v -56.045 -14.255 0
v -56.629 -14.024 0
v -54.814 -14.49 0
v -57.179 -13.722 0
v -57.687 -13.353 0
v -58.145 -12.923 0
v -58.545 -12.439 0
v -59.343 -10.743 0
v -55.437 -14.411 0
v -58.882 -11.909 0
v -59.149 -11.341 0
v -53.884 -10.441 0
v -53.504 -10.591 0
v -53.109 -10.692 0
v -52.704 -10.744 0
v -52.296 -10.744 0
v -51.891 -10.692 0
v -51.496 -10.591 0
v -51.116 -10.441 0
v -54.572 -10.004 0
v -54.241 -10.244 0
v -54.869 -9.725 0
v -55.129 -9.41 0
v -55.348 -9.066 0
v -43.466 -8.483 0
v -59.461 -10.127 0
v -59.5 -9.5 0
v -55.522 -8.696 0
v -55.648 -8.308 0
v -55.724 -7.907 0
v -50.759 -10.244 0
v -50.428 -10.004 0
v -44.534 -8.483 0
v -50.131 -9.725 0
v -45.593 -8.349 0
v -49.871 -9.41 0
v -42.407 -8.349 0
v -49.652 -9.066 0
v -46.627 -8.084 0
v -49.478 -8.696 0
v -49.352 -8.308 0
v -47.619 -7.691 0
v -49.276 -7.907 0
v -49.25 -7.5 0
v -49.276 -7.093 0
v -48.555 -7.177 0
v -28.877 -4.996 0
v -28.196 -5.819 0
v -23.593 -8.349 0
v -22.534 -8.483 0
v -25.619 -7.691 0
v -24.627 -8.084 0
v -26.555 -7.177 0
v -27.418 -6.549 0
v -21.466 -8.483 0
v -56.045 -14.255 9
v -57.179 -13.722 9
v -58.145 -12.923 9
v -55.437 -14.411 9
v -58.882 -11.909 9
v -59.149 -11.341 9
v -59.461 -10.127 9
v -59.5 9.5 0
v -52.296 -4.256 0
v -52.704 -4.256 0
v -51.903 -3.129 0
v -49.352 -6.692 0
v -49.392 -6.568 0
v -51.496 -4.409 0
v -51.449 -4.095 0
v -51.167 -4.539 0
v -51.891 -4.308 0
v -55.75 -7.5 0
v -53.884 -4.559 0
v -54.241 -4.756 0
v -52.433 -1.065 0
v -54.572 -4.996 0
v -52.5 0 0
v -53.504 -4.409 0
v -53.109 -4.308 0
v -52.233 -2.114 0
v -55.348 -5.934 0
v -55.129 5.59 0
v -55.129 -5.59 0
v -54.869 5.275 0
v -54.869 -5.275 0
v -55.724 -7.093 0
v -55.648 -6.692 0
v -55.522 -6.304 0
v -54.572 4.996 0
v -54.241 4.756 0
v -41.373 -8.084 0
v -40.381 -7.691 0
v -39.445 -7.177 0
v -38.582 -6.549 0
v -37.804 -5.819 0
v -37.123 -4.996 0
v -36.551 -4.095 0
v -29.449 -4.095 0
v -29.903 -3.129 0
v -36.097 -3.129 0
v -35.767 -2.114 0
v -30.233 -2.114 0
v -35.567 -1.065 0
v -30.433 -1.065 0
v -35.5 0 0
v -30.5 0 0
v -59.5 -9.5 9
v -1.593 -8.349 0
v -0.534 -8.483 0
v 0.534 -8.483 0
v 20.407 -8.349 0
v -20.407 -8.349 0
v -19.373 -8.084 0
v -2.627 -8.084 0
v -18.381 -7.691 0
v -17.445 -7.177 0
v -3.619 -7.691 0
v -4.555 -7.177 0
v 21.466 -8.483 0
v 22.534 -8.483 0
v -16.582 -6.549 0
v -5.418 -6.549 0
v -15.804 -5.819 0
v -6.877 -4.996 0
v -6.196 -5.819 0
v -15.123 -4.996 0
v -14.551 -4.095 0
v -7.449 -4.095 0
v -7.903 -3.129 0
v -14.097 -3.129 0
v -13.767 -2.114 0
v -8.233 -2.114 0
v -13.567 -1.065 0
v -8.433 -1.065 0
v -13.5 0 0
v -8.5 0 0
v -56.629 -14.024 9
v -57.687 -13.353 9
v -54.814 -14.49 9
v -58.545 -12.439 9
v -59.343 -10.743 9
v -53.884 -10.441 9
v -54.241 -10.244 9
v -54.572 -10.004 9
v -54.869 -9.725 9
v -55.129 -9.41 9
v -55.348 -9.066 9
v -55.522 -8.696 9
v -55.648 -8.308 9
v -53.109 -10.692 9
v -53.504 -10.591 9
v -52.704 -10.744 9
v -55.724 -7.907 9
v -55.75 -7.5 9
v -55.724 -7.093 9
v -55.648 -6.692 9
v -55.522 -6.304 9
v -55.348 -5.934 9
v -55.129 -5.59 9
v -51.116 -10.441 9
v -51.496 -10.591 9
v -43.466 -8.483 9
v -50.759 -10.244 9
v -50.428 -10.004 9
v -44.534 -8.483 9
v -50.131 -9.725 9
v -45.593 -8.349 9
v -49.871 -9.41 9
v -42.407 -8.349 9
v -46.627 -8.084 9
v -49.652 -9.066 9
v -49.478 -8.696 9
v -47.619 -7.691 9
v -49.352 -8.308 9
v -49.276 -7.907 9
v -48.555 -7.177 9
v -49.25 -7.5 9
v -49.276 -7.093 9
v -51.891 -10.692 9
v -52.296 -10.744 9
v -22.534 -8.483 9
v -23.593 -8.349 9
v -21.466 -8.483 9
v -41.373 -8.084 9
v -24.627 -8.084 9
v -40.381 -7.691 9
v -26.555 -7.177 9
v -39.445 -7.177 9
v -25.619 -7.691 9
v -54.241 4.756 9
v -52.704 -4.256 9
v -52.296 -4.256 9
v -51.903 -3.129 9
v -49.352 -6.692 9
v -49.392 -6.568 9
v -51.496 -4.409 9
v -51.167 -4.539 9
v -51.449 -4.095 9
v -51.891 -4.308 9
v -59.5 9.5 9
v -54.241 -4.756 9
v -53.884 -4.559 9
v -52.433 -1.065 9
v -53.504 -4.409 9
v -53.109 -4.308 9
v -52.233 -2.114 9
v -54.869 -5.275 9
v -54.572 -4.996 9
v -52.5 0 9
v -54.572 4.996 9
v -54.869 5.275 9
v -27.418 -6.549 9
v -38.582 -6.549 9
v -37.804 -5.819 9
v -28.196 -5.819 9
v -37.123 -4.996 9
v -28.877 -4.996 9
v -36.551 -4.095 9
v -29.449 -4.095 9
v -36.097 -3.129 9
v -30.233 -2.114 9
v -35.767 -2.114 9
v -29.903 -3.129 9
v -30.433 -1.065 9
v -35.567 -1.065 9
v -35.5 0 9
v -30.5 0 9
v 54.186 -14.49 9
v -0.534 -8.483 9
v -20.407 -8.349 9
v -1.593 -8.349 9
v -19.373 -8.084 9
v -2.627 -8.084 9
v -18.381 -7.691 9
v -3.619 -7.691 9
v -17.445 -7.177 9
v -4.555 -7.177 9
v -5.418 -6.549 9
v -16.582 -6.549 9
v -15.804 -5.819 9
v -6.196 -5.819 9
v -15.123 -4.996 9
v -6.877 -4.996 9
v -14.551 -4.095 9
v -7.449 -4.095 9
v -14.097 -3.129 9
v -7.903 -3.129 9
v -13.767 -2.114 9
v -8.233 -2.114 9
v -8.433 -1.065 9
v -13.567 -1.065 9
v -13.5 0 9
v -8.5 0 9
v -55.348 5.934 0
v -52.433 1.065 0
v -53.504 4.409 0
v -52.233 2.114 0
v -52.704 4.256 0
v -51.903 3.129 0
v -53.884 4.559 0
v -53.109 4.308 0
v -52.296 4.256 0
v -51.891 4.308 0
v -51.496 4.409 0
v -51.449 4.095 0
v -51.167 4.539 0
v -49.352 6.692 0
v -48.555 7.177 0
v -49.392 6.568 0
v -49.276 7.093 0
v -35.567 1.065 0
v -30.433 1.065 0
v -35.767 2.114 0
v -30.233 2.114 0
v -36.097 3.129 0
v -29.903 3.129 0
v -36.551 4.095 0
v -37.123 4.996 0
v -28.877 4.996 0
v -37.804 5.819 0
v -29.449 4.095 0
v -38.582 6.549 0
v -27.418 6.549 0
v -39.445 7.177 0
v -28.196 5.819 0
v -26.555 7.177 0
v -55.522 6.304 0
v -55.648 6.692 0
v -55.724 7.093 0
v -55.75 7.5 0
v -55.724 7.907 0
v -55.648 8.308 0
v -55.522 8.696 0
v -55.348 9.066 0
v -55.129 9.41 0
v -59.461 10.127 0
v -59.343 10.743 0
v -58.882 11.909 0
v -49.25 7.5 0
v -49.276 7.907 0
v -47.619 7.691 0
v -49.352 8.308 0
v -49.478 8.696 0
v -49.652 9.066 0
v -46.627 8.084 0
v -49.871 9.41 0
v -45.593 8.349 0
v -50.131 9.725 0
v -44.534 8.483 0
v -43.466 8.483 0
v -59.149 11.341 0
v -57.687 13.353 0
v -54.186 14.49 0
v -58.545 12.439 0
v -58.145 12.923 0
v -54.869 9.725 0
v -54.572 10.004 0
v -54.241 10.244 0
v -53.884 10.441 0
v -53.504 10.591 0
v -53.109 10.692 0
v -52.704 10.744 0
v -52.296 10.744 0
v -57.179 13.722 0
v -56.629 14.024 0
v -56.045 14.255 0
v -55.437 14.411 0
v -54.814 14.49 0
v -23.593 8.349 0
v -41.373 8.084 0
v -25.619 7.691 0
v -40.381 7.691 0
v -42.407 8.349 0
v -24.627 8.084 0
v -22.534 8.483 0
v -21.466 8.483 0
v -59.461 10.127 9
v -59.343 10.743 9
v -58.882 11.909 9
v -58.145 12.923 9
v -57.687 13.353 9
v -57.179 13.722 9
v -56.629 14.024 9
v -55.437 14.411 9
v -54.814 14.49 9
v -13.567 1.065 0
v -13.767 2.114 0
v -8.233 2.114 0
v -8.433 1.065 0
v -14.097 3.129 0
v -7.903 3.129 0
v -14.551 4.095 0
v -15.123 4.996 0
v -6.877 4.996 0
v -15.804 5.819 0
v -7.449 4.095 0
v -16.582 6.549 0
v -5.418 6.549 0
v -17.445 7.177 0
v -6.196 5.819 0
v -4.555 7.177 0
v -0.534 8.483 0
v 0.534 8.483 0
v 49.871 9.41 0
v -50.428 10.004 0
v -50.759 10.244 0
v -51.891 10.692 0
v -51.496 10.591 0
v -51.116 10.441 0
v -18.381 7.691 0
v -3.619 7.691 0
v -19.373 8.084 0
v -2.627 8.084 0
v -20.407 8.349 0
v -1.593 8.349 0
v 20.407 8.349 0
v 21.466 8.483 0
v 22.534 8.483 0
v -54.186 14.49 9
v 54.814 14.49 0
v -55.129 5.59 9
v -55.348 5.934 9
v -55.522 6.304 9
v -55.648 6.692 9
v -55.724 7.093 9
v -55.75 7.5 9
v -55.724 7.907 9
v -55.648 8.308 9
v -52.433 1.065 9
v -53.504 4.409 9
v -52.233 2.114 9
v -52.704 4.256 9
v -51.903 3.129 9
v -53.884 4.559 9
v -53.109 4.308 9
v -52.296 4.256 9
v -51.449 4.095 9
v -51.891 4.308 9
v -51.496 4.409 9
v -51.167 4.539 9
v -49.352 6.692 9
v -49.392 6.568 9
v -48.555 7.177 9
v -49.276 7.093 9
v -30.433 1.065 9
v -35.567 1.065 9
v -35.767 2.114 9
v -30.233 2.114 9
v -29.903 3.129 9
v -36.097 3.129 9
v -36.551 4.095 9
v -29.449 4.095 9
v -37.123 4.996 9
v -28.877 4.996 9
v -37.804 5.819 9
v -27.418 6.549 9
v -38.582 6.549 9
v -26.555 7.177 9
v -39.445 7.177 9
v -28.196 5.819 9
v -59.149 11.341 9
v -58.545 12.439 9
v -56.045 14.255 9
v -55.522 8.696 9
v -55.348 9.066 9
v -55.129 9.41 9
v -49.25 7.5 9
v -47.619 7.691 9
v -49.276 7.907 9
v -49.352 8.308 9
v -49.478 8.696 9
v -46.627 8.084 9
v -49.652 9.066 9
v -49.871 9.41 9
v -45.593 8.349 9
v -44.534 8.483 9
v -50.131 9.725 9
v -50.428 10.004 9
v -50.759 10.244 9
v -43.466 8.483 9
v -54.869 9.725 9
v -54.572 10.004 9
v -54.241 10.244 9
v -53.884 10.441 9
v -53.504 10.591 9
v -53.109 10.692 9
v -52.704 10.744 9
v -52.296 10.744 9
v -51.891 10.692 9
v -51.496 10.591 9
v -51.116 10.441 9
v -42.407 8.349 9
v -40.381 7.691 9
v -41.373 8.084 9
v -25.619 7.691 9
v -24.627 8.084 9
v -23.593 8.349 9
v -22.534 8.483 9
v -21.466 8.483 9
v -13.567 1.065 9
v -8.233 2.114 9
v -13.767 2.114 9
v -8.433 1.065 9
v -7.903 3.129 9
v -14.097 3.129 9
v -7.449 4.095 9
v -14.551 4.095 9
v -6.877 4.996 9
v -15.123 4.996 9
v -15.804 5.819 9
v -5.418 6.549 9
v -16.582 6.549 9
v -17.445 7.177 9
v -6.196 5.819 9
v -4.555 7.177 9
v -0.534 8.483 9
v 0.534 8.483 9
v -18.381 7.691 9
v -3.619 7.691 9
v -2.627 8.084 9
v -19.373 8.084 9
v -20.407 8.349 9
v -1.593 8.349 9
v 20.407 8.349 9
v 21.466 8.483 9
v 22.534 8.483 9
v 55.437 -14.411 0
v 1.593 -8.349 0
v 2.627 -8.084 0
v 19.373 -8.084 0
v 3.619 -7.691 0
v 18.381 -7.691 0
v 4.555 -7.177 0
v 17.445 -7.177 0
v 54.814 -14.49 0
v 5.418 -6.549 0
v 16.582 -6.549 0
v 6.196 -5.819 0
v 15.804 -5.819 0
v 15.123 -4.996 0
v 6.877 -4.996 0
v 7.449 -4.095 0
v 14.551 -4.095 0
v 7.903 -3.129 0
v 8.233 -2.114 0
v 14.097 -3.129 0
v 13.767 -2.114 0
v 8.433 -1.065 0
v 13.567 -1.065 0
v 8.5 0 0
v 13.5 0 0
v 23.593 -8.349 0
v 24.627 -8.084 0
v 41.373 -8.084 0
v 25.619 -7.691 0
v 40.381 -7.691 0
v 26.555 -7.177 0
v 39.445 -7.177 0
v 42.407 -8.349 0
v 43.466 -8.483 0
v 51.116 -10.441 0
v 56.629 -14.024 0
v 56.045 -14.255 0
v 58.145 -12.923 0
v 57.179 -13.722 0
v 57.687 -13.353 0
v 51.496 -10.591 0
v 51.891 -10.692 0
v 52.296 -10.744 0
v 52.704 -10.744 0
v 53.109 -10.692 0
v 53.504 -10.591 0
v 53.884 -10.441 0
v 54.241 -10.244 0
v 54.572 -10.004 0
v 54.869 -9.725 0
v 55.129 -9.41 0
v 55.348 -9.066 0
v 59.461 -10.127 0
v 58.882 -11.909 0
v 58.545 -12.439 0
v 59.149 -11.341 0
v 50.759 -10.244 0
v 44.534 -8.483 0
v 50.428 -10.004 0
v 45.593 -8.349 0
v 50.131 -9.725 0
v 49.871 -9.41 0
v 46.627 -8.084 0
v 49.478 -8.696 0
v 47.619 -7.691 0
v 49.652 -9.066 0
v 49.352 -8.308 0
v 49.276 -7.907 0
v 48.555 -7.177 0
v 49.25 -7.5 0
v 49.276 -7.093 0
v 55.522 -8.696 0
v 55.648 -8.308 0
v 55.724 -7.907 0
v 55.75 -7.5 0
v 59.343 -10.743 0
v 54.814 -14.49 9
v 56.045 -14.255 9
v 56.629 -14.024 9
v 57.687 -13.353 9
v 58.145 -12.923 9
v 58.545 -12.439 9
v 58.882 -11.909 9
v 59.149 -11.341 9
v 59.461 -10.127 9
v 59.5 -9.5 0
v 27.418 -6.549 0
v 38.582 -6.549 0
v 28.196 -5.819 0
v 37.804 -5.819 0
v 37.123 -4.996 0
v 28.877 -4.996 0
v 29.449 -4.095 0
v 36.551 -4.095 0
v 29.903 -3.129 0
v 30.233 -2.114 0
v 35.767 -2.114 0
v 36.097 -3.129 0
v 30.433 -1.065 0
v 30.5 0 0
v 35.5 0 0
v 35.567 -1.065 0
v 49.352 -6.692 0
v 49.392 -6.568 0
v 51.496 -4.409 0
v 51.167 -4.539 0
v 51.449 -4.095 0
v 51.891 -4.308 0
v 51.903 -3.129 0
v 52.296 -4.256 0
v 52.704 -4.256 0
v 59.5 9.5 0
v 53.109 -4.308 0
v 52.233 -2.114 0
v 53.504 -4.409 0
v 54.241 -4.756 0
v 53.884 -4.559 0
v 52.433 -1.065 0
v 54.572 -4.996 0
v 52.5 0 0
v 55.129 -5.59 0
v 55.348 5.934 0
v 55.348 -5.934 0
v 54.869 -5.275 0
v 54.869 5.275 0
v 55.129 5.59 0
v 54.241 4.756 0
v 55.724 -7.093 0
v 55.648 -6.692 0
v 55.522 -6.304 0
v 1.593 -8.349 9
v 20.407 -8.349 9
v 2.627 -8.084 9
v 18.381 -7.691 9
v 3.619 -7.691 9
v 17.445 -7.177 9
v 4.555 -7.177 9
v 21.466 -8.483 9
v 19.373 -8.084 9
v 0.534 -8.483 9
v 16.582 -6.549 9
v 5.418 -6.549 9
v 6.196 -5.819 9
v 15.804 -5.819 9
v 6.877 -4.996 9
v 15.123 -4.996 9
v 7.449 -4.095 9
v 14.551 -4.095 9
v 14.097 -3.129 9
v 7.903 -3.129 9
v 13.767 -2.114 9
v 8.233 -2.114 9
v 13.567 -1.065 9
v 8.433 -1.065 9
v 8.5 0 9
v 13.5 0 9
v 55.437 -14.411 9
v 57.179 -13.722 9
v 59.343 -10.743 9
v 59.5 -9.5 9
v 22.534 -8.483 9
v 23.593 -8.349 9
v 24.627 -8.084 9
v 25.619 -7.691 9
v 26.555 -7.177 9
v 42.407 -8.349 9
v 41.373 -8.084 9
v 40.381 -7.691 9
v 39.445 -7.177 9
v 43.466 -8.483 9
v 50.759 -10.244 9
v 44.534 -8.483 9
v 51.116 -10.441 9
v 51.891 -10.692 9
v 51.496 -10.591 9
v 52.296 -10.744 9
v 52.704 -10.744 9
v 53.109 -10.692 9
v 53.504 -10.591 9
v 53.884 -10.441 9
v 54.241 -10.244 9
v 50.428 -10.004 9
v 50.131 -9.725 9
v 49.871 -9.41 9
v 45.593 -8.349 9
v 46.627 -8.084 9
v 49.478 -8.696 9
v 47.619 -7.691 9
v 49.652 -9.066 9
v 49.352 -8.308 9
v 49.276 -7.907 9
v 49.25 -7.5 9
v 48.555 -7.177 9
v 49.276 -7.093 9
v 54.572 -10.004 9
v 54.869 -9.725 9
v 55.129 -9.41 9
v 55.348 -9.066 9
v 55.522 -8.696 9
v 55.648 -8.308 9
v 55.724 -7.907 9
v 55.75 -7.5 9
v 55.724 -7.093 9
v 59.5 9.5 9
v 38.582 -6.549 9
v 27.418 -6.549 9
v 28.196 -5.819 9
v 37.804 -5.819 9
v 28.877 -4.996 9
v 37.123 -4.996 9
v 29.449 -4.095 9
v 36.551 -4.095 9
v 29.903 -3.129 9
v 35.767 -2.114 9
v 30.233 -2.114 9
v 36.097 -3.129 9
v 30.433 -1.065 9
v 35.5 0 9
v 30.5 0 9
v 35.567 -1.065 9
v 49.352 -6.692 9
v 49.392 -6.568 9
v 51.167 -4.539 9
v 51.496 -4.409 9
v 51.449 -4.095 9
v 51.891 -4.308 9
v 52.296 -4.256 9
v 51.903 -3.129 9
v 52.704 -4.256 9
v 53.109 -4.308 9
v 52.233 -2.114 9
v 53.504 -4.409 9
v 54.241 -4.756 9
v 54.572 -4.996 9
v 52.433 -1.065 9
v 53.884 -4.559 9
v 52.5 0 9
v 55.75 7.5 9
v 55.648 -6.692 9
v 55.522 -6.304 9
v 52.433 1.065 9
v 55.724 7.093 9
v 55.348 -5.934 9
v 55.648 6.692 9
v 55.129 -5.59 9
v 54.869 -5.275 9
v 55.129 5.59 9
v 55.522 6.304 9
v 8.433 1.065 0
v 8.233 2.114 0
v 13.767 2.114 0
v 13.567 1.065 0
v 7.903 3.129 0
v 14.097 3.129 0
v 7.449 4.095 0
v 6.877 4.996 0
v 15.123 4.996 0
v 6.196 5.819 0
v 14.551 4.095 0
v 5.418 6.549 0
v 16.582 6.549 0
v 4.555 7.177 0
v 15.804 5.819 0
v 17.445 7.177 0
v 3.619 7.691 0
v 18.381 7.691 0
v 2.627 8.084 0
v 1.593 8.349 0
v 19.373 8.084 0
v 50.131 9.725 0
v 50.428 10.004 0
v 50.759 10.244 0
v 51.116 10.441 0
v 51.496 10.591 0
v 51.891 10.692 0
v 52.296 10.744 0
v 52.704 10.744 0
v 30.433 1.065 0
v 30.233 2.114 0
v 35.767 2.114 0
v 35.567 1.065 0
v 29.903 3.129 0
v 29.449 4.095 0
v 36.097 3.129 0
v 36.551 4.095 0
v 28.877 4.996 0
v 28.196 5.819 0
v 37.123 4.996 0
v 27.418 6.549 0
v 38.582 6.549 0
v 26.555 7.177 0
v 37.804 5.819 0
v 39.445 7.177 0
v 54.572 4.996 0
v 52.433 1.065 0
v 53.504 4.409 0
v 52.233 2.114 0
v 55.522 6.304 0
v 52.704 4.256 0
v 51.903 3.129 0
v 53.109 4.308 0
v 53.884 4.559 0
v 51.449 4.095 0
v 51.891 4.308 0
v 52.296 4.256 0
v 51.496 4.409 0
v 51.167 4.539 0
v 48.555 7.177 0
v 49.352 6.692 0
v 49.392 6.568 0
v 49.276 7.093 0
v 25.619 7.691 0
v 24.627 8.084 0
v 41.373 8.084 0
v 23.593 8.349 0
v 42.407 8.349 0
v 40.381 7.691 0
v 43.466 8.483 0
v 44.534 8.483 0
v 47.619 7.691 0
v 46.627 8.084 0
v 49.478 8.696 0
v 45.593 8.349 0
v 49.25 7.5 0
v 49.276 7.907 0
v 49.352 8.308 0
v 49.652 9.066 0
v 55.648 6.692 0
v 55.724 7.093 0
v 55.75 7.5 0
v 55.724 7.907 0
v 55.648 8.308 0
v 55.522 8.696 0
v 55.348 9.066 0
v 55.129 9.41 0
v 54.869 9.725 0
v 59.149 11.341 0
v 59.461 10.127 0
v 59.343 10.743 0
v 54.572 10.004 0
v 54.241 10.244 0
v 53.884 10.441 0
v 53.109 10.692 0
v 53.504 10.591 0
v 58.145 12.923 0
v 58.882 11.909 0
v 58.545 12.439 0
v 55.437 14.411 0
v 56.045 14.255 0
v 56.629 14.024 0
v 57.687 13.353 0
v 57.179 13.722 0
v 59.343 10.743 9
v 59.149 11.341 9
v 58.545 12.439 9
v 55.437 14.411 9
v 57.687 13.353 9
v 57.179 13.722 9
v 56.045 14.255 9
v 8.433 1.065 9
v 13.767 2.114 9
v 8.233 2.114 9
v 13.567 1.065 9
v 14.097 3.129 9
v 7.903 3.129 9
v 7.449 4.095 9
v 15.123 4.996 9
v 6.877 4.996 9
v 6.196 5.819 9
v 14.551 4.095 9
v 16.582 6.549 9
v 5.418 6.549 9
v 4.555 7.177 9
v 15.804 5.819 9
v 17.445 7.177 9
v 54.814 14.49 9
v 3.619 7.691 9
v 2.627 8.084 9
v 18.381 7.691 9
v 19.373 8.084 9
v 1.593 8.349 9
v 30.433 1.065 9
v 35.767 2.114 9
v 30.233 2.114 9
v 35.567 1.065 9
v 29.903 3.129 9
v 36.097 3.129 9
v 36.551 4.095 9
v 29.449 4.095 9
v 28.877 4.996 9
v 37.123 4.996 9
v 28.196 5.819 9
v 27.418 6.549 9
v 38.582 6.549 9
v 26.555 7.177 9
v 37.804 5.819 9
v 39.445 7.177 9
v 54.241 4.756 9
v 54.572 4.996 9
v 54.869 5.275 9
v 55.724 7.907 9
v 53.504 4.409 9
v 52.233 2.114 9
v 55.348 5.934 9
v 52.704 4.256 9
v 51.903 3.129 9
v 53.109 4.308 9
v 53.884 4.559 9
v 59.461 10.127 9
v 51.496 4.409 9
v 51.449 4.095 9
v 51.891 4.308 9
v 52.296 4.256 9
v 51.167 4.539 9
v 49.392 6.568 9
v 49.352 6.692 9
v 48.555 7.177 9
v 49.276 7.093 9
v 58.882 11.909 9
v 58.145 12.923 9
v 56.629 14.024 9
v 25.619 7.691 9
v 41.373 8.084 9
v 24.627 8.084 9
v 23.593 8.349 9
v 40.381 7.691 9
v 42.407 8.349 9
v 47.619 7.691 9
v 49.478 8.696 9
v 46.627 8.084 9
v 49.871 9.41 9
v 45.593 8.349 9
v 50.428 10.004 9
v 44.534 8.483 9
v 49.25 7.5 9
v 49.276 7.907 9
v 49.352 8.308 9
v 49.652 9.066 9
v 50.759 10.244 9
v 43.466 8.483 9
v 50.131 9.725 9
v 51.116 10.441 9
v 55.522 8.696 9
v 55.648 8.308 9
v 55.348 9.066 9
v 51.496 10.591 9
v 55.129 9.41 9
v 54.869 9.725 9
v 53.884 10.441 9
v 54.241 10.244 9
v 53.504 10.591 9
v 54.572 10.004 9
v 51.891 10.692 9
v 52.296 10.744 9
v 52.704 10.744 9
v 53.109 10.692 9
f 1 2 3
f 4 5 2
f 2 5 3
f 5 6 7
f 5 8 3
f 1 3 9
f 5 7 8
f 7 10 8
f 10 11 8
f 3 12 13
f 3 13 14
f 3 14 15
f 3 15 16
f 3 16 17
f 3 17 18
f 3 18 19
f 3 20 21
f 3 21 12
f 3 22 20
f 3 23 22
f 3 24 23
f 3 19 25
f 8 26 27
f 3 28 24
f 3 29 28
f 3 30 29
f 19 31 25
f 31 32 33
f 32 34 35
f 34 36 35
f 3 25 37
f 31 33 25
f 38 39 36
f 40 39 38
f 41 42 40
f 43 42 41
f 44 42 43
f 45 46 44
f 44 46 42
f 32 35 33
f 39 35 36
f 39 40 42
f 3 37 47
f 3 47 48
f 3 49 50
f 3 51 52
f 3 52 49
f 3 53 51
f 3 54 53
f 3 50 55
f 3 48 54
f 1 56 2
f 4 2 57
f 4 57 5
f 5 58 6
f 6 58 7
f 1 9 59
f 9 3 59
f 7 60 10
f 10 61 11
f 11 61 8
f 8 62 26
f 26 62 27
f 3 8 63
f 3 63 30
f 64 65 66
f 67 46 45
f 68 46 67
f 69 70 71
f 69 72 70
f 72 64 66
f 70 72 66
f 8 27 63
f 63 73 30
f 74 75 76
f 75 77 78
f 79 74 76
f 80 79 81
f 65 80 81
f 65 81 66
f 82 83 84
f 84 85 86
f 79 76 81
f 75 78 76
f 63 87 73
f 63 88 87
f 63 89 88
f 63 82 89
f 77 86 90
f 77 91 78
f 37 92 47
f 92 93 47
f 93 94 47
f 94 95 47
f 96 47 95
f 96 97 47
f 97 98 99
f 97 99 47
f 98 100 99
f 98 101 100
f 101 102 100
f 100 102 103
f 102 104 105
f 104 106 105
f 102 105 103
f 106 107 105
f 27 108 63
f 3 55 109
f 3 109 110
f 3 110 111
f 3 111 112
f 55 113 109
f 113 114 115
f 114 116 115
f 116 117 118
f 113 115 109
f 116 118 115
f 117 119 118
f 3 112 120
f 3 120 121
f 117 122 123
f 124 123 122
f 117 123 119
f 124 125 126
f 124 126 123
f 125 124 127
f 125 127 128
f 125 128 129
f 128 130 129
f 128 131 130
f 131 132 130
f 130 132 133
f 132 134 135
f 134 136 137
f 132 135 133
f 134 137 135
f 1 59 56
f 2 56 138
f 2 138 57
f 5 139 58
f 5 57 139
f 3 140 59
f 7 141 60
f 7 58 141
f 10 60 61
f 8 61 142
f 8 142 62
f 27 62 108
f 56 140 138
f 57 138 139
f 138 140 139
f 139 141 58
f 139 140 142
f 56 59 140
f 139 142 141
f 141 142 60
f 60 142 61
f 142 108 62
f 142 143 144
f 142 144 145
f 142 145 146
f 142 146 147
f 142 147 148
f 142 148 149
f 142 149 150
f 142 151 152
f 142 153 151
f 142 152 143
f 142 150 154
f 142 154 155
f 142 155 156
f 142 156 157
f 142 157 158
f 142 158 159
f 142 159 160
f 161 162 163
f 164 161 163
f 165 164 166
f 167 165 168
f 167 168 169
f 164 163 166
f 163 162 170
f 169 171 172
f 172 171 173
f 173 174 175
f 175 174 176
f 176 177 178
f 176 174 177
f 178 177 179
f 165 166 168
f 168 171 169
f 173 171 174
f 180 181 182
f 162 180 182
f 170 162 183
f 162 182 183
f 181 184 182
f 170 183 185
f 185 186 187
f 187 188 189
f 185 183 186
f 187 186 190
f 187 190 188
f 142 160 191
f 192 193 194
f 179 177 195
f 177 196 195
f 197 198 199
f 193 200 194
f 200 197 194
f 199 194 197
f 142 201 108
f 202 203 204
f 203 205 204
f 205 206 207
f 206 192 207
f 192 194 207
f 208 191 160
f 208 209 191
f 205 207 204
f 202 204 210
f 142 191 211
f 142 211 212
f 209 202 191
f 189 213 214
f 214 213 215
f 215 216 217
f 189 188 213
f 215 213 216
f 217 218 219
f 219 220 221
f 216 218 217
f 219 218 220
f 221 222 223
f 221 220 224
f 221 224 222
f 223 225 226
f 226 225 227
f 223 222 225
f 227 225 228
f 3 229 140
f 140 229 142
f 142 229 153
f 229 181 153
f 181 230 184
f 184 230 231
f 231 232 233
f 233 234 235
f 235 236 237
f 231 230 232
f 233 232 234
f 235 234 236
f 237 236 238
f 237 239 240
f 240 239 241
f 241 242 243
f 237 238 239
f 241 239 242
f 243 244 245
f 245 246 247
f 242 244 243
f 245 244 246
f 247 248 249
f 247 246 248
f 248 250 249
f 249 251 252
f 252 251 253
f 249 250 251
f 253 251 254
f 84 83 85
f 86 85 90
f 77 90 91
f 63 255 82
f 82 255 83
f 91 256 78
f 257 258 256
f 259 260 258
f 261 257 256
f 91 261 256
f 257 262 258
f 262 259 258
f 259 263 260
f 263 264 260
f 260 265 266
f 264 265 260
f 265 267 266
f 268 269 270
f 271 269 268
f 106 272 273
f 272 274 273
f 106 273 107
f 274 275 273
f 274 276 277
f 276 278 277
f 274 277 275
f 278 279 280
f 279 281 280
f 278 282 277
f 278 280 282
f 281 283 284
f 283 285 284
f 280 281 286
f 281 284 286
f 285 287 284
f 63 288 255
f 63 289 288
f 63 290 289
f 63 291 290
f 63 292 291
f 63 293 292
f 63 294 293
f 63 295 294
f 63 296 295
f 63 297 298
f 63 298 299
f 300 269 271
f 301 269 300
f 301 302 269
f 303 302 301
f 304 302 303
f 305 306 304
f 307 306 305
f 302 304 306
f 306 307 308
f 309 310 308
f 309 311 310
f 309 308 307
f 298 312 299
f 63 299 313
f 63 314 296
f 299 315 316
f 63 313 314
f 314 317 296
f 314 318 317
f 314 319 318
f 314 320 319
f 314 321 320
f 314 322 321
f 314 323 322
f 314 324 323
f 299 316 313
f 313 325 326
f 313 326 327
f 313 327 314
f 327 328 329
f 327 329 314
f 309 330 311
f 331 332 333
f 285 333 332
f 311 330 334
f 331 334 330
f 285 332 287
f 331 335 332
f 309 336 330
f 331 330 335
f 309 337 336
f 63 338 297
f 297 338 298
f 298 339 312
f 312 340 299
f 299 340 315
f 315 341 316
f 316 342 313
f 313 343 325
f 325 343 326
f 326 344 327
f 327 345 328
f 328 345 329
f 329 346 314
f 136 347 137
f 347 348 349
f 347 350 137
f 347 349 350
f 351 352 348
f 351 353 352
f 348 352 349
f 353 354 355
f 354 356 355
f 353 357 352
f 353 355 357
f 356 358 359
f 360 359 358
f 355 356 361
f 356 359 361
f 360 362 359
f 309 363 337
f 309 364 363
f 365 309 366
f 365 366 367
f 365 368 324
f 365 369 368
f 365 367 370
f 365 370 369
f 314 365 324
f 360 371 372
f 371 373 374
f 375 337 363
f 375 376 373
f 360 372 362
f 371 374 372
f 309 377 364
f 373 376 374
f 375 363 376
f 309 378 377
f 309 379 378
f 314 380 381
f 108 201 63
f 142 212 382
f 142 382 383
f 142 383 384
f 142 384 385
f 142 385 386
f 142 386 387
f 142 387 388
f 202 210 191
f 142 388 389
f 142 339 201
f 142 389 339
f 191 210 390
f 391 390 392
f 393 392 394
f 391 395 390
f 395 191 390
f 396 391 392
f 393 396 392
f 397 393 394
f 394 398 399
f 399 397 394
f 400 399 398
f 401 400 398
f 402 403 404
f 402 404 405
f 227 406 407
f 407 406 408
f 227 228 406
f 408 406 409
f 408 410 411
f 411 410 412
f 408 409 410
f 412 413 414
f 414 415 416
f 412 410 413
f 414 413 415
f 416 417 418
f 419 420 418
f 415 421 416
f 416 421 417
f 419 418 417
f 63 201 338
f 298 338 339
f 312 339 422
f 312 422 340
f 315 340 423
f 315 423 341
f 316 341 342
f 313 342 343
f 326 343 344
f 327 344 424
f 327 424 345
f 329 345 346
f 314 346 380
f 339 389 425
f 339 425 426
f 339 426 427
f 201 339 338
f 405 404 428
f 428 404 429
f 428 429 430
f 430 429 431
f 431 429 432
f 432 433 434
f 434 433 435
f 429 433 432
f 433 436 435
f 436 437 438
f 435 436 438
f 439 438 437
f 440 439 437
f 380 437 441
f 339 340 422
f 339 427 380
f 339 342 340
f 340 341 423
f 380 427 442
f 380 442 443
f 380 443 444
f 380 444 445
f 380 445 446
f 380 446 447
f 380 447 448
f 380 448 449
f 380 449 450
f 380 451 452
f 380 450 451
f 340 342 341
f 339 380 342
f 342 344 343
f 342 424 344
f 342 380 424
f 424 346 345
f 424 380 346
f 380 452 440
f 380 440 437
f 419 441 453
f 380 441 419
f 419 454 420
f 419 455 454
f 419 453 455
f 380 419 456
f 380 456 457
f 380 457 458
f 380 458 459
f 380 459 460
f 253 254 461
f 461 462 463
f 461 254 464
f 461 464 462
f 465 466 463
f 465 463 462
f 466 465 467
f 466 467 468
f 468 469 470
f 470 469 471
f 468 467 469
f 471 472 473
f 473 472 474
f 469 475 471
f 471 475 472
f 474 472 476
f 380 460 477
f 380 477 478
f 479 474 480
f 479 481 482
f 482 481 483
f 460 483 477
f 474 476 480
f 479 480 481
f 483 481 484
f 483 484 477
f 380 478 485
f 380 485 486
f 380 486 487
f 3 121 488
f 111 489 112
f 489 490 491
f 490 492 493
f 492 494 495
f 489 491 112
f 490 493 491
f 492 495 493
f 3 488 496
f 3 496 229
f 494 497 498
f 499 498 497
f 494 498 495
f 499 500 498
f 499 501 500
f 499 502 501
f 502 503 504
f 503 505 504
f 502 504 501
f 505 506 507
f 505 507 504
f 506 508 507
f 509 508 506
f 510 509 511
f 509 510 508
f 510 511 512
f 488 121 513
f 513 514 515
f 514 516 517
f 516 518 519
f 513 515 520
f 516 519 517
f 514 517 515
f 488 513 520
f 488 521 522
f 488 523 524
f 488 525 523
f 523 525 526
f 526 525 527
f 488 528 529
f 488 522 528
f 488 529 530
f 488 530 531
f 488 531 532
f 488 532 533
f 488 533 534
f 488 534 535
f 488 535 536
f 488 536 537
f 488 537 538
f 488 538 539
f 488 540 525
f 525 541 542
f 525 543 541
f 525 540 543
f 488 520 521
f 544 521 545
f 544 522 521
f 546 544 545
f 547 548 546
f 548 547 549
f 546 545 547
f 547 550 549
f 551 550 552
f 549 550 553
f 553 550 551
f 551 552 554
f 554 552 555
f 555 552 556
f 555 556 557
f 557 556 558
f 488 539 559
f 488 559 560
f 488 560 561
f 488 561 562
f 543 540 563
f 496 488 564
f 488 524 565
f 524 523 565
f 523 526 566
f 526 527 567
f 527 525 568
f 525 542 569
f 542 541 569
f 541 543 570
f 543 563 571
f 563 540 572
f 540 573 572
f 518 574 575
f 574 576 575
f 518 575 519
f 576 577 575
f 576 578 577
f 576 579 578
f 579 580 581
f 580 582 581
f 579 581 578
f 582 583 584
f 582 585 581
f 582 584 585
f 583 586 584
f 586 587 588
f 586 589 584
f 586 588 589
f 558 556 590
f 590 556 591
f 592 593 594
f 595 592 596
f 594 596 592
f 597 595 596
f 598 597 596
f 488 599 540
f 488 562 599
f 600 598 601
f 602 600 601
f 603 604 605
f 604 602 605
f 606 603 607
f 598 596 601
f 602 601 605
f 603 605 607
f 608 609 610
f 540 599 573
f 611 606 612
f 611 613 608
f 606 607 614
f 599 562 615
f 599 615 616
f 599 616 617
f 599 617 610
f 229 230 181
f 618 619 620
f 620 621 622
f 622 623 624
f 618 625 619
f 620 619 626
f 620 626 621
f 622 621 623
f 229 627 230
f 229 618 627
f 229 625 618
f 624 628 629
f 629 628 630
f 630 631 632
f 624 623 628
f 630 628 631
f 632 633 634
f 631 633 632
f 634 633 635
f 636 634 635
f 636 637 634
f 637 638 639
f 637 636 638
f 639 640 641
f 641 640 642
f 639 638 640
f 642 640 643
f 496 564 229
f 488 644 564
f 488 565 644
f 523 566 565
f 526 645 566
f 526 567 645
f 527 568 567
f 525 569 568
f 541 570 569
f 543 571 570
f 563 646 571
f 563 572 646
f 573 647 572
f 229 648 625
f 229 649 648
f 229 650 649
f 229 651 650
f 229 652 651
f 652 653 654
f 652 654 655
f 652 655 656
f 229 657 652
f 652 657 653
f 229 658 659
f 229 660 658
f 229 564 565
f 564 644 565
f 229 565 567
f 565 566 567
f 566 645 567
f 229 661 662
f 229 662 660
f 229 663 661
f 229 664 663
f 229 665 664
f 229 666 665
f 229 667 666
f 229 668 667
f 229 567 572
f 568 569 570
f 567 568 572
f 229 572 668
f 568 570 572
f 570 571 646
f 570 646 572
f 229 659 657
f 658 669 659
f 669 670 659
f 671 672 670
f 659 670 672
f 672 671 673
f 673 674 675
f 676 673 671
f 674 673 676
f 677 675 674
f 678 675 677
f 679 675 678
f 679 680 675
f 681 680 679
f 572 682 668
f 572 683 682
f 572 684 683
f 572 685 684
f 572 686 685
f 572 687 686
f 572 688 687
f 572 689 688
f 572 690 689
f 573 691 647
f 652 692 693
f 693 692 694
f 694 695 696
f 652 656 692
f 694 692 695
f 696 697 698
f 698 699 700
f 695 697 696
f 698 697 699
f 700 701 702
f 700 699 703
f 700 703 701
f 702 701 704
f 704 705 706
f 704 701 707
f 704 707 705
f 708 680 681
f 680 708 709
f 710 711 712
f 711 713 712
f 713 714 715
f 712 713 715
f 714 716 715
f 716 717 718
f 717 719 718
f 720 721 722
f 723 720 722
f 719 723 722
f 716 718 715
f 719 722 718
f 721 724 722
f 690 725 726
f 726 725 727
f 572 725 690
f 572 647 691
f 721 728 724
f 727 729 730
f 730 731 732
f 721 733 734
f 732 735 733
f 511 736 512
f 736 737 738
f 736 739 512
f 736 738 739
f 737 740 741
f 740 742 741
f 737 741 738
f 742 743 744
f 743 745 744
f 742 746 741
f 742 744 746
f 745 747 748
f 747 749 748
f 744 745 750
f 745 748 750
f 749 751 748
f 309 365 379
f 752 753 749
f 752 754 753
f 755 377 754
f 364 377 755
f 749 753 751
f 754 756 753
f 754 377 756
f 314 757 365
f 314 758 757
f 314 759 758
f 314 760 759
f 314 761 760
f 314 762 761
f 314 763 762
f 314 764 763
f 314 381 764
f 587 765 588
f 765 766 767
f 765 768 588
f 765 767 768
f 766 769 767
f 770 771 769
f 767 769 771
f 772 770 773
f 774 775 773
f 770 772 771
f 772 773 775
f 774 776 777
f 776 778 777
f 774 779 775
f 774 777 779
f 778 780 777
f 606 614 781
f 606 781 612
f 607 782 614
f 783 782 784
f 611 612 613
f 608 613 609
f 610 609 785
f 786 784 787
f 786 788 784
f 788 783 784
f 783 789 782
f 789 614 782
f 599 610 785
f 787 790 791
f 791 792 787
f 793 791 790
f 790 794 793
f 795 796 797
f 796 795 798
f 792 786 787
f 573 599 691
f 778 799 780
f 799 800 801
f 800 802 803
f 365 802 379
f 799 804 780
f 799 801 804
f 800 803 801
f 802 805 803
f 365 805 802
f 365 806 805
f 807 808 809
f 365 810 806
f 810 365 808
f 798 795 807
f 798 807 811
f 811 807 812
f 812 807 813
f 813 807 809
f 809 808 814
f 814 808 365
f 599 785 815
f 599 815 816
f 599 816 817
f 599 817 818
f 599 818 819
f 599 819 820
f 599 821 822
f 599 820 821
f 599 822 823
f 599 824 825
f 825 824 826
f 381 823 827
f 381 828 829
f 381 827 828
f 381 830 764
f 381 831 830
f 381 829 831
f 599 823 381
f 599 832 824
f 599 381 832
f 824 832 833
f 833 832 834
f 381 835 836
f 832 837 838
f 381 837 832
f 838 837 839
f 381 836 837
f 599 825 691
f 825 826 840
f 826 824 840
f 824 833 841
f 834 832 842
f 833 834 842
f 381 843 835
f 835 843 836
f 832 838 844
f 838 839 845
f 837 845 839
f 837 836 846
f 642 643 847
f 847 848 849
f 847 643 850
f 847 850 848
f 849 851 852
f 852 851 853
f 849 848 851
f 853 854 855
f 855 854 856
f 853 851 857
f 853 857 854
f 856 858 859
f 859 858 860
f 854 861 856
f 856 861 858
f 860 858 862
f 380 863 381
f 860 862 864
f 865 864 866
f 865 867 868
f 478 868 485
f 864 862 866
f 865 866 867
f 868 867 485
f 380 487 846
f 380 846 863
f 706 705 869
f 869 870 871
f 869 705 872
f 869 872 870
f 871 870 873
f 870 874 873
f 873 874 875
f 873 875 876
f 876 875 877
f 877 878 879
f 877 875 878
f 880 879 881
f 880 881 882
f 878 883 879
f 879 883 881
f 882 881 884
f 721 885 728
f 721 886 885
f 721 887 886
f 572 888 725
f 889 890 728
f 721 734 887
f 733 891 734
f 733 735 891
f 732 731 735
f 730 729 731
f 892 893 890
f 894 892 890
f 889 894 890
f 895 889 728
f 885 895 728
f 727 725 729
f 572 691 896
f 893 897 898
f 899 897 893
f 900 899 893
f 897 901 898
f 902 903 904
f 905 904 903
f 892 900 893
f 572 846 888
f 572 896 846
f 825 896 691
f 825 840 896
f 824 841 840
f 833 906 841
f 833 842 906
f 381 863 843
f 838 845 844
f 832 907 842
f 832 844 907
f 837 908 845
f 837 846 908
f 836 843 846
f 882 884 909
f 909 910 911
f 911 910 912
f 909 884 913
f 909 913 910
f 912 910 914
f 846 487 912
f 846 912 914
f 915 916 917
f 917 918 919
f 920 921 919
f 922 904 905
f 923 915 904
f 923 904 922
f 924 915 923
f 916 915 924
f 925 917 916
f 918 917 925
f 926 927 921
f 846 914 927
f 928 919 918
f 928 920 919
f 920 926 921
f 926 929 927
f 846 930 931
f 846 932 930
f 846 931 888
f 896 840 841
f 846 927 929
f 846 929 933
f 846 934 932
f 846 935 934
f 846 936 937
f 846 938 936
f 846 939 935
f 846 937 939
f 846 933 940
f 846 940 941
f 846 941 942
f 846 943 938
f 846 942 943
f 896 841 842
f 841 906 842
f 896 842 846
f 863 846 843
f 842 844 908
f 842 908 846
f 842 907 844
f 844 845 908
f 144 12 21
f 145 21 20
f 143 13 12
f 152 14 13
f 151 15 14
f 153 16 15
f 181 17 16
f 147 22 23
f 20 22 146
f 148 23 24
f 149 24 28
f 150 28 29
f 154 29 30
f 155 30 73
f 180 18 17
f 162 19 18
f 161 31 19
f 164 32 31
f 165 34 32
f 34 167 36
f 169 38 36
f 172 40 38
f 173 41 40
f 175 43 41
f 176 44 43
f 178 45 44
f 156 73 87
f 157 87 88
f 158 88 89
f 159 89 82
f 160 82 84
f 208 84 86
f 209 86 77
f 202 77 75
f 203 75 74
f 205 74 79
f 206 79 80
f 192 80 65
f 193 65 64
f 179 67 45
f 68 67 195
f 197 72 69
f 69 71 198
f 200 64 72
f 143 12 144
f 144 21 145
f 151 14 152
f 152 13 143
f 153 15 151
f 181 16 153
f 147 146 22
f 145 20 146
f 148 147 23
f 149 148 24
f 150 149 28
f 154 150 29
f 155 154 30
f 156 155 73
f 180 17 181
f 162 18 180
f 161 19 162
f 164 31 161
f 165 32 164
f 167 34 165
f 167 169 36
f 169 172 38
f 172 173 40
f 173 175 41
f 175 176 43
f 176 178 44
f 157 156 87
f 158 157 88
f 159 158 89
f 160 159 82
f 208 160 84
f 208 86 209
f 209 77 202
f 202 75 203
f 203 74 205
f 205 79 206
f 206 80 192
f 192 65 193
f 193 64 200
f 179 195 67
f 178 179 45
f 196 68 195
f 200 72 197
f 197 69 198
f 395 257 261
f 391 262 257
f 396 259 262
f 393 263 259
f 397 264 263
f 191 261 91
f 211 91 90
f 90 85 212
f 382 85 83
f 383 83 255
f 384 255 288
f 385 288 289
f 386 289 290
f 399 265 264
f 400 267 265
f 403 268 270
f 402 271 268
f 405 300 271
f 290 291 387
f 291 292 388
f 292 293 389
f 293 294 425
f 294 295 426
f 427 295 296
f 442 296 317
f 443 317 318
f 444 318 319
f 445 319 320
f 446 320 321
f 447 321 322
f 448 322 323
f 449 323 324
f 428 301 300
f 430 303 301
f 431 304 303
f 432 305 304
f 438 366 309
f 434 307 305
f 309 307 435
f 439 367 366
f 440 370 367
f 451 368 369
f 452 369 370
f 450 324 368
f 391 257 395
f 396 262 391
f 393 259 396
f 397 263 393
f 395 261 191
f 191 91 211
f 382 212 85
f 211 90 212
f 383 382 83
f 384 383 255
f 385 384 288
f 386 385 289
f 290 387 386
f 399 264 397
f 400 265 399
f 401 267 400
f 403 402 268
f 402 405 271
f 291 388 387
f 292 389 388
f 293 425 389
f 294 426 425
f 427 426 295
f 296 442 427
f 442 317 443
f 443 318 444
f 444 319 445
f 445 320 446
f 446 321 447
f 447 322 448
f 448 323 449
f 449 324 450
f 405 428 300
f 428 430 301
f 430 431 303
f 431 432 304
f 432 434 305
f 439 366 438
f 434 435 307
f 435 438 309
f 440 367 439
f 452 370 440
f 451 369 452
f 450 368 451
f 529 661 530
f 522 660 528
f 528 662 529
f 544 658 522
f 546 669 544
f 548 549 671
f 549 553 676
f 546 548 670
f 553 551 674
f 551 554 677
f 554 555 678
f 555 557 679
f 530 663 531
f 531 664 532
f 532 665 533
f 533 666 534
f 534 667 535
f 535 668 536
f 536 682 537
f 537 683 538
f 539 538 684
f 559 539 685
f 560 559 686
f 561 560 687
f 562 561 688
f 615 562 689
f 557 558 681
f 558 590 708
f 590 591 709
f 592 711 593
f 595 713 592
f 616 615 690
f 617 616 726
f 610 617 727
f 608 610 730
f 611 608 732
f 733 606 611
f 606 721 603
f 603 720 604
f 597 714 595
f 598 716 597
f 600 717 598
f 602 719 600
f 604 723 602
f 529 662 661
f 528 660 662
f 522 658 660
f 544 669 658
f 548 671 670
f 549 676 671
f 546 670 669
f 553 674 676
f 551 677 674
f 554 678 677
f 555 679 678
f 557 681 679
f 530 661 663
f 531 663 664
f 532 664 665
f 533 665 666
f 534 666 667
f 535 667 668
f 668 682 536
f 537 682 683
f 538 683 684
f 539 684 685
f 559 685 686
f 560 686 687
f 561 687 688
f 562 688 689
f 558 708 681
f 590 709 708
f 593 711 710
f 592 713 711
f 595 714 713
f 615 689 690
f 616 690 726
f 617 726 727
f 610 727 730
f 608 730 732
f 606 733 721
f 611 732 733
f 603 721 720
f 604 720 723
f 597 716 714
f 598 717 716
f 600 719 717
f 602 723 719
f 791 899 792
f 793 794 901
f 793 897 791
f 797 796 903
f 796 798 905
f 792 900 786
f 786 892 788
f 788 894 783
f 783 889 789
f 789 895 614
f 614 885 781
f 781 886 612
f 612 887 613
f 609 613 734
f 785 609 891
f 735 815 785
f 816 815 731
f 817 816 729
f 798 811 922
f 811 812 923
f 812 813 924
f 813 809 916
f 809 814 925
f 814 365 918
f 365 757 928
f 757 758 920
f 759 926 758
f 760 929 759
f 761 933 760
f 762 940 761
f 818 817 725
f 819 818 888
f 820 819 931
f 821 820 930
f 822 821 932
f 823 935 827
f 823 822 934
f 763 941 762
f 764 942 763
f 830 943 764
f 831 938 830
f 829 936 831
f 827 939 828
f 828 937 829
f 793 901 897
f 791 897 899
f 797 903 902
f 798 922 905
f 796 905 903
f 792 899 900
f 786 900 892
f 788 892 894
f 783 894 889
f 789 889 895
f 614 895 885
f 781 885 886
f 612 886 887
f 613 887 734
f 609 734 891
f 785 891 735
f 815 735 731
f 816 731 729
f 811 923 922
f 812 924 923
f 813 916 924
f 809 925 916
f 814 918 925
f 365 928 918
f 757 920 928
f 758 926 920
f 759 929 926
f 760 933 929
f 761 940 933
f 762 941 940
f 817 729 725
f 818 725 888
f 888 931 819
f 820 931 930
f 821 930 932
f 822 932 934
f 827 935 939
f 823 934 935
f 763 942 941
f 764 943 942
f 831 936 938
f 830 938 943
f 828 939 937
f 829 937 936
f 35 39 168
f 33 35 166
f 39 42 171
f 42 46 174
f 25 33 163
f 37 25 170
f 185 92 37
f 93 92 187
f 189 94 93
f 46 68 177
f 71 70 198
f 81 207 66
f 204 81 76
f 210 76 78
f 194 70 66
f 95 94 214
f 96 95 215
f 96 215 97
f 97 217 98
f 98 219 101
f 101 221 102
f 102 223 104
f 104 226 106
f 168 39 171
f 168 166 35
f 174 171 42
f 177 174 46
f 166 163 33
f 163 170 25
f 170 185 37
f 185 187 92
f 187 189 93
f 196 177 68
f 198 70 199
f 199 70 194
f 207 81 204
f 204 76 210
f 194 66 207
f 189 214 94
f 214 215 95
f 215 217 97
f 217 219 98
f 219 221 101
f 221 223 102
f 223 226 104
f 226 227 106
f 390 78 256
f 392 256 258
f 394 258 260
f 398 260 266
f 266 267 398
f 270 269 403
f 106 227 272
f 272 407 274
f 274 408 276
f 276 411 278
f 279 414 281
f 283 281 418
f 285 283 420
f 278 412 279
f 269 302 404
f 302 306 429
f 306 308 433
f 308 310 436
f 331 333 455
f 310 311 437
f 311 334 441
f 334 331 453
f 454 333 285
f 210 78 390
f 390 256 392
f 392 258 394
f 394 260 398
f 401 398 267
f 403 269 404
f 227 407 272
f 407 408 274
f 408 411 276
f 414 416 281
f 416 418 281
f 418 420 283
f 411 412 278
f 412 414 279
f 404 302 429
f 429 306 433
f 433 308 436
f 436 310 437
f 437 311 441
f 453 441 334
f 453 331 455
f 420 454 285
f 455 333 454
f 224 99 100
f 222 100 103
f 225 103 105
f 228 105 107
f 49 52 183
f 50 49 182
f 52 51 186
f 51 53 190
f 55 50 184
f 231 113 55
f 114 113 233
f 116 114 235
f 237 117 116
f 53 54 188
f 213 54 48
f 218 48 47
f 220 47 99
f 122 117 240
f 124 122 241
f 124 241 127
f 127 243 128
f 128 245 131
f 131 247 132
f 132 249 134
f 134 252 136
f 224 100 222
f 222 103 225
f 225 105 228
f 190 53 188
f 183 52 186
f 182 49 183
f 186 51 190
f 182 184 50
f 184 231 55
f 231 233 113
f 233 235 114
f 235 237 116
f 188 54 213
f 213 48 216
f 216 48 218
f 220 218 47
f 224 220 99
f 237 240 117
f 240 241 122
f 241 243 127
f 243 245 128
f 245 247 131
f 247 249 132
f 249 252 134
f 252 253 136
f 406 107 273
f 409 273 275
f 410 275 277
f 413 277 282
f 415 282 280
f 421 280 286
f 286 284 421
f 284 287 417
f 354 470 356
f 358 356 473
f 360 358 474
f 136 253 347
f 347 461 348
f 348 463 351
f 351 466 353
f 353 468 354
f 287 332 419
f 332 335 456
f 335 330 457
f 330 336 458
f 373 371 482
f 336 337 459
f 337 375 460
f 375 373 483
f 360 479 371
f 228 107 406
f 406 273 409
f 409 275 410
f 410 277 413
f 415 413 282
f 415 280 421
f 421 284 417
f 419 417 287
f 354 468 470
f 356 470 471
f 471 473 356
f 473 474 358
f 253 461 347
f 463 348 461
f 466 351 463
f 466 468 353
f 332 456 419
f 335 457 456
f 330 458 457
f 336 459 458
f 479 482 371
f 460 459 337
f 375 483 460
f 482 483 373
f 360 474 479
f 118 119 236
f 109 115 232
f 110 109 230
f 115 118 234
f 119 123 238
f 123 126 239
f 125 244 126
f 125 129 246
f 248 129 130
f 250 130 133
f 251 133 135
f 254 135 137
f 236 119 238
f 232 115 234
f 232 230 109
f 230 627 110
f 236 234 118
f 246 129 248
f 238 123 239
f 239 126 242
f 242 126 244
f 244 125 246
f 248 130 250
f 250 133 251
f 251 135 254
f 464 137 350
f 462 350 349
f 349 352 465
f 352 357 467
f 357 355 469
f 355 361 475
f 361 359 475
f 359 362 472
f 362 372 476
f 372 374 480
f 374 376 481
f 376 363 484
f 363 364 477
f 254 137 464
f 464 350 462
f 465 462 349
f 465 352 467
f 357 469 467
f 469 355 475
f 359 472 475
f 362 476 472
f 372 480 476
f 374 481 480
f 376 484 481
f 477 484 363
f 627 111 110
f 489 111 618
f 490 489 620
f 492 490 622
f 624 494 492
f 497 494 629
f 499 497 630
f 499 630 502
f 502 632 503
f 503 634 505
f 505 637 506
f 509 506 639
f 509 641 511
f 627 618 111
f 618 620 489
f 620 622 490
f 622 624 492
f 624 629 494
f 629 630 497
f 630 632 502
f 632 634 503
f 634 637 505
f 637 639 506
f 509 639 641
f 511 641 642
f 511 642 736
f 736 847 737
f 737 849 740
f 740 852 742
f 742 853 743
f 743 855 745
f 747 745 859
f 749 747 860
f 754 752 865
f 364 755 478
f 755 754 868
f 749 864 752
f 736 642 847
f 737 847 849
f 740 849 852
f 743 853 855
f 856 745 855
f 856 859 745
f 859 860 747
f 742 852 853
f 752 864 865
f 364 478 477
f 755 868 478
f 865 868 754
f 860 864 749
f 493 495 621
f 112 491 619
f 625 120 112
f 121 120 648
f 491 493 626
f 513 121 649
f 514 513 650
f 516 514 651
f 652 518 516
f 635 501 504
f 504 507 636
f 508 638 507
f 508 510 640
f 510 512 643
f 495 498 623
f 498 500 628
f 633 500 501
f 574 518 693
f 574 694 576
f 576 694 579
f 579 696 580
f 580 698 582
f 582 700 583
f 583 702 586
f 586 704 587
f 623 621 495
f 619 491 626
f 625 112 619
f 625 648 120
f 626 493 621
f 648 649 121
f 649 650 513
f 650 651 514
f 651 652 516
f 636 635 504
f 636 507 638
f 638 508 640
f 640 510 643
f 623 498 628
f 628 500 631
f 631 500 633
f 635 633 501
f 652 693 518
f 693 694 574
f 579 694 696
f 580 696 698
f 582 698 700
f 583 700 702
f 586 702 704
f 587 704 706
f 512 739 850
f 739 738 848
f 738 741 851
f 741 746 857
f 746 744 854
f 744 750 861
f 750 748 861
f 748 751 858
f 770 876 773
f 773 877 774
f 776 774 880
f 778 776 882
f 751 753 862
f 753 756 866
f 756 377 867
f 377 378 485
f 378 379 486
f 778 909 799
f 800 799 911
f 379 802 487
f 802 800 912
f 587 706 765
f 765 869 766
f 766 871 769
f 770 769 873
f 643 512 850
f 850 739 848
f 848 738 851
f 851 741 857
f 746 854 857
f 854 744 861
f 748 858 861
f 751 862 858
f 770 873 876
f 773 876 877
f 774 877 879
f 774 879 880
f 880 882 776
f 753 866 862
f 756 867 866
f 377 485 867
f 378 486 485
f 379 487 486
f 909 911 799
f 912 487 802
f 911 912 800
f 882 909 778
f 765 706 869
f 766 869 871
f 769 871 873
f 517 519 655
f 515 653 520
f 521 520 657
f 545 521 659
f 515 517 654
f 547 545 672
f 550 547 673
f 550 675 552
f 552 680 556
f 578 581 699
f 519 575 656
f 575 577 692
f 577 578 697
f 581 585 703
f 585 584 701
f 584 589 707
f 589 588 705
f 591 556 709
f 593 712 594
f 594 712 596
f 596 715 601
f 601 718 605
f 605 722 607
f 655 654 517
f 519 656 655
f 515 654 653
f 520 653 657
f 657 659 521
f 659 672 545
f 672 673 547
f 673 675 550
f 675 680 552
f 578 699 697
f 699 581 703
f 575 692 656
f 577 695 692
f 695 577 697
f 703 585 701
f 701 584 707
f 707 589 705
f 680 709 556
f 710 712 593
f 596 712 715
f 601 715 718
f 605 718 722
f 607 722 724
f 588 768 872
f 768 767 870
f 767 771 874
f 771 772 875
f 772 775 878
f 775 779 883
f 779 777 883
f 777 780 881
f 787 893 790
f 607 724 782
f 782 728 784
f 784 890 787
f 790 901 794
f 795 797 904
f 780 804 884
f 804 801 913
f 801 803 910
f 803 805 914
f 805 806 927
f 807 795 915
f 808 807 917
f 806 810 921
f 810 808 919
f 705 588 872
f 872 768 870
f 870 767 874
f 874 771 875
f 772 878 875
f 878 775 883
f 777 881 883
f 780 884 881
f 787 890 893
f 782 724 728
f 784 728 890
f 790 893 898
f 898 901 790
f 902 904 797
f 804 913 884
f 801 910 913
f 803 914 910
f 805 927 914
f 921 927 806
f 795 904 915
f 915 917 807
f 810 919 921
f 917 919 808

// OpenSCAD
$fn = 50;

difference() {
	union() {
		hull() {
			translate(v = [-54.5, 9.5, 0]) {
				cylinder(h = 9, r = 5);
			}
			translate(v = [54.5, 9.5, 0]) {
				cylinder(h = 9, r = 5);
			}
			translate(v = [-54.5, -9.5, 0]) {
				cylinder(h = 9, r = 5);
			}
			translate(v = [54.5, -9.5, 0]) {
				cylinder(h = 9, r = 5);
			}
		}
	}
	union() {
		translate(v = [-52.5, -7.5, -100.0]) {
			cylinder(h = 200, r = 3.25);
		}
		translate(v = [-52.5, 7.5, -100.0]) {
			cylinder(h = 200, r = 3.25);
		}
		translate(v = [52.5, -7.5, -100.0]) {
			cylinder(h = 200, r = 3.25);
		}
		translate(v = [52.5, 7.5, -100.0]) {
			cylinder(h = 200, r = 3.25);
		}
		translate(v = [-52.5, -7.5, -100.0]) {
			cylinder(h = 200, r = 1.8);
		}
		translate(v = [-52.5, 7.5, -100.0]) {
			cylinder(h = 200, r = 1.8);
		}
		translate(v = [52.5, -7.5, -100.0]) {
			cylinder(h = 200, r = 1.8);
		}
		translate(v = [52.5, 7.5, -100.0]) {
			cylinder(h = 200, r = 1.8);
		}
		translate(v = [-44.0, 0, 0.0]) {
			cylinder(h = 9, r = 8.5);
		}
		translate(v = [-22.0, 0, 0.0]) {
			cylinder(h = 9, r = 8.5);
		}
		cylinder(h = 9, r = 8.5);
		translate(v = [22.0, 0, 0.0]) {
			cylinder(h = 9, r = 8.5);
		}
		translate(v = [44.0, 0, 0.0]) {
			cylinder(h = 9, r = 8.5);
		}
	}
}
